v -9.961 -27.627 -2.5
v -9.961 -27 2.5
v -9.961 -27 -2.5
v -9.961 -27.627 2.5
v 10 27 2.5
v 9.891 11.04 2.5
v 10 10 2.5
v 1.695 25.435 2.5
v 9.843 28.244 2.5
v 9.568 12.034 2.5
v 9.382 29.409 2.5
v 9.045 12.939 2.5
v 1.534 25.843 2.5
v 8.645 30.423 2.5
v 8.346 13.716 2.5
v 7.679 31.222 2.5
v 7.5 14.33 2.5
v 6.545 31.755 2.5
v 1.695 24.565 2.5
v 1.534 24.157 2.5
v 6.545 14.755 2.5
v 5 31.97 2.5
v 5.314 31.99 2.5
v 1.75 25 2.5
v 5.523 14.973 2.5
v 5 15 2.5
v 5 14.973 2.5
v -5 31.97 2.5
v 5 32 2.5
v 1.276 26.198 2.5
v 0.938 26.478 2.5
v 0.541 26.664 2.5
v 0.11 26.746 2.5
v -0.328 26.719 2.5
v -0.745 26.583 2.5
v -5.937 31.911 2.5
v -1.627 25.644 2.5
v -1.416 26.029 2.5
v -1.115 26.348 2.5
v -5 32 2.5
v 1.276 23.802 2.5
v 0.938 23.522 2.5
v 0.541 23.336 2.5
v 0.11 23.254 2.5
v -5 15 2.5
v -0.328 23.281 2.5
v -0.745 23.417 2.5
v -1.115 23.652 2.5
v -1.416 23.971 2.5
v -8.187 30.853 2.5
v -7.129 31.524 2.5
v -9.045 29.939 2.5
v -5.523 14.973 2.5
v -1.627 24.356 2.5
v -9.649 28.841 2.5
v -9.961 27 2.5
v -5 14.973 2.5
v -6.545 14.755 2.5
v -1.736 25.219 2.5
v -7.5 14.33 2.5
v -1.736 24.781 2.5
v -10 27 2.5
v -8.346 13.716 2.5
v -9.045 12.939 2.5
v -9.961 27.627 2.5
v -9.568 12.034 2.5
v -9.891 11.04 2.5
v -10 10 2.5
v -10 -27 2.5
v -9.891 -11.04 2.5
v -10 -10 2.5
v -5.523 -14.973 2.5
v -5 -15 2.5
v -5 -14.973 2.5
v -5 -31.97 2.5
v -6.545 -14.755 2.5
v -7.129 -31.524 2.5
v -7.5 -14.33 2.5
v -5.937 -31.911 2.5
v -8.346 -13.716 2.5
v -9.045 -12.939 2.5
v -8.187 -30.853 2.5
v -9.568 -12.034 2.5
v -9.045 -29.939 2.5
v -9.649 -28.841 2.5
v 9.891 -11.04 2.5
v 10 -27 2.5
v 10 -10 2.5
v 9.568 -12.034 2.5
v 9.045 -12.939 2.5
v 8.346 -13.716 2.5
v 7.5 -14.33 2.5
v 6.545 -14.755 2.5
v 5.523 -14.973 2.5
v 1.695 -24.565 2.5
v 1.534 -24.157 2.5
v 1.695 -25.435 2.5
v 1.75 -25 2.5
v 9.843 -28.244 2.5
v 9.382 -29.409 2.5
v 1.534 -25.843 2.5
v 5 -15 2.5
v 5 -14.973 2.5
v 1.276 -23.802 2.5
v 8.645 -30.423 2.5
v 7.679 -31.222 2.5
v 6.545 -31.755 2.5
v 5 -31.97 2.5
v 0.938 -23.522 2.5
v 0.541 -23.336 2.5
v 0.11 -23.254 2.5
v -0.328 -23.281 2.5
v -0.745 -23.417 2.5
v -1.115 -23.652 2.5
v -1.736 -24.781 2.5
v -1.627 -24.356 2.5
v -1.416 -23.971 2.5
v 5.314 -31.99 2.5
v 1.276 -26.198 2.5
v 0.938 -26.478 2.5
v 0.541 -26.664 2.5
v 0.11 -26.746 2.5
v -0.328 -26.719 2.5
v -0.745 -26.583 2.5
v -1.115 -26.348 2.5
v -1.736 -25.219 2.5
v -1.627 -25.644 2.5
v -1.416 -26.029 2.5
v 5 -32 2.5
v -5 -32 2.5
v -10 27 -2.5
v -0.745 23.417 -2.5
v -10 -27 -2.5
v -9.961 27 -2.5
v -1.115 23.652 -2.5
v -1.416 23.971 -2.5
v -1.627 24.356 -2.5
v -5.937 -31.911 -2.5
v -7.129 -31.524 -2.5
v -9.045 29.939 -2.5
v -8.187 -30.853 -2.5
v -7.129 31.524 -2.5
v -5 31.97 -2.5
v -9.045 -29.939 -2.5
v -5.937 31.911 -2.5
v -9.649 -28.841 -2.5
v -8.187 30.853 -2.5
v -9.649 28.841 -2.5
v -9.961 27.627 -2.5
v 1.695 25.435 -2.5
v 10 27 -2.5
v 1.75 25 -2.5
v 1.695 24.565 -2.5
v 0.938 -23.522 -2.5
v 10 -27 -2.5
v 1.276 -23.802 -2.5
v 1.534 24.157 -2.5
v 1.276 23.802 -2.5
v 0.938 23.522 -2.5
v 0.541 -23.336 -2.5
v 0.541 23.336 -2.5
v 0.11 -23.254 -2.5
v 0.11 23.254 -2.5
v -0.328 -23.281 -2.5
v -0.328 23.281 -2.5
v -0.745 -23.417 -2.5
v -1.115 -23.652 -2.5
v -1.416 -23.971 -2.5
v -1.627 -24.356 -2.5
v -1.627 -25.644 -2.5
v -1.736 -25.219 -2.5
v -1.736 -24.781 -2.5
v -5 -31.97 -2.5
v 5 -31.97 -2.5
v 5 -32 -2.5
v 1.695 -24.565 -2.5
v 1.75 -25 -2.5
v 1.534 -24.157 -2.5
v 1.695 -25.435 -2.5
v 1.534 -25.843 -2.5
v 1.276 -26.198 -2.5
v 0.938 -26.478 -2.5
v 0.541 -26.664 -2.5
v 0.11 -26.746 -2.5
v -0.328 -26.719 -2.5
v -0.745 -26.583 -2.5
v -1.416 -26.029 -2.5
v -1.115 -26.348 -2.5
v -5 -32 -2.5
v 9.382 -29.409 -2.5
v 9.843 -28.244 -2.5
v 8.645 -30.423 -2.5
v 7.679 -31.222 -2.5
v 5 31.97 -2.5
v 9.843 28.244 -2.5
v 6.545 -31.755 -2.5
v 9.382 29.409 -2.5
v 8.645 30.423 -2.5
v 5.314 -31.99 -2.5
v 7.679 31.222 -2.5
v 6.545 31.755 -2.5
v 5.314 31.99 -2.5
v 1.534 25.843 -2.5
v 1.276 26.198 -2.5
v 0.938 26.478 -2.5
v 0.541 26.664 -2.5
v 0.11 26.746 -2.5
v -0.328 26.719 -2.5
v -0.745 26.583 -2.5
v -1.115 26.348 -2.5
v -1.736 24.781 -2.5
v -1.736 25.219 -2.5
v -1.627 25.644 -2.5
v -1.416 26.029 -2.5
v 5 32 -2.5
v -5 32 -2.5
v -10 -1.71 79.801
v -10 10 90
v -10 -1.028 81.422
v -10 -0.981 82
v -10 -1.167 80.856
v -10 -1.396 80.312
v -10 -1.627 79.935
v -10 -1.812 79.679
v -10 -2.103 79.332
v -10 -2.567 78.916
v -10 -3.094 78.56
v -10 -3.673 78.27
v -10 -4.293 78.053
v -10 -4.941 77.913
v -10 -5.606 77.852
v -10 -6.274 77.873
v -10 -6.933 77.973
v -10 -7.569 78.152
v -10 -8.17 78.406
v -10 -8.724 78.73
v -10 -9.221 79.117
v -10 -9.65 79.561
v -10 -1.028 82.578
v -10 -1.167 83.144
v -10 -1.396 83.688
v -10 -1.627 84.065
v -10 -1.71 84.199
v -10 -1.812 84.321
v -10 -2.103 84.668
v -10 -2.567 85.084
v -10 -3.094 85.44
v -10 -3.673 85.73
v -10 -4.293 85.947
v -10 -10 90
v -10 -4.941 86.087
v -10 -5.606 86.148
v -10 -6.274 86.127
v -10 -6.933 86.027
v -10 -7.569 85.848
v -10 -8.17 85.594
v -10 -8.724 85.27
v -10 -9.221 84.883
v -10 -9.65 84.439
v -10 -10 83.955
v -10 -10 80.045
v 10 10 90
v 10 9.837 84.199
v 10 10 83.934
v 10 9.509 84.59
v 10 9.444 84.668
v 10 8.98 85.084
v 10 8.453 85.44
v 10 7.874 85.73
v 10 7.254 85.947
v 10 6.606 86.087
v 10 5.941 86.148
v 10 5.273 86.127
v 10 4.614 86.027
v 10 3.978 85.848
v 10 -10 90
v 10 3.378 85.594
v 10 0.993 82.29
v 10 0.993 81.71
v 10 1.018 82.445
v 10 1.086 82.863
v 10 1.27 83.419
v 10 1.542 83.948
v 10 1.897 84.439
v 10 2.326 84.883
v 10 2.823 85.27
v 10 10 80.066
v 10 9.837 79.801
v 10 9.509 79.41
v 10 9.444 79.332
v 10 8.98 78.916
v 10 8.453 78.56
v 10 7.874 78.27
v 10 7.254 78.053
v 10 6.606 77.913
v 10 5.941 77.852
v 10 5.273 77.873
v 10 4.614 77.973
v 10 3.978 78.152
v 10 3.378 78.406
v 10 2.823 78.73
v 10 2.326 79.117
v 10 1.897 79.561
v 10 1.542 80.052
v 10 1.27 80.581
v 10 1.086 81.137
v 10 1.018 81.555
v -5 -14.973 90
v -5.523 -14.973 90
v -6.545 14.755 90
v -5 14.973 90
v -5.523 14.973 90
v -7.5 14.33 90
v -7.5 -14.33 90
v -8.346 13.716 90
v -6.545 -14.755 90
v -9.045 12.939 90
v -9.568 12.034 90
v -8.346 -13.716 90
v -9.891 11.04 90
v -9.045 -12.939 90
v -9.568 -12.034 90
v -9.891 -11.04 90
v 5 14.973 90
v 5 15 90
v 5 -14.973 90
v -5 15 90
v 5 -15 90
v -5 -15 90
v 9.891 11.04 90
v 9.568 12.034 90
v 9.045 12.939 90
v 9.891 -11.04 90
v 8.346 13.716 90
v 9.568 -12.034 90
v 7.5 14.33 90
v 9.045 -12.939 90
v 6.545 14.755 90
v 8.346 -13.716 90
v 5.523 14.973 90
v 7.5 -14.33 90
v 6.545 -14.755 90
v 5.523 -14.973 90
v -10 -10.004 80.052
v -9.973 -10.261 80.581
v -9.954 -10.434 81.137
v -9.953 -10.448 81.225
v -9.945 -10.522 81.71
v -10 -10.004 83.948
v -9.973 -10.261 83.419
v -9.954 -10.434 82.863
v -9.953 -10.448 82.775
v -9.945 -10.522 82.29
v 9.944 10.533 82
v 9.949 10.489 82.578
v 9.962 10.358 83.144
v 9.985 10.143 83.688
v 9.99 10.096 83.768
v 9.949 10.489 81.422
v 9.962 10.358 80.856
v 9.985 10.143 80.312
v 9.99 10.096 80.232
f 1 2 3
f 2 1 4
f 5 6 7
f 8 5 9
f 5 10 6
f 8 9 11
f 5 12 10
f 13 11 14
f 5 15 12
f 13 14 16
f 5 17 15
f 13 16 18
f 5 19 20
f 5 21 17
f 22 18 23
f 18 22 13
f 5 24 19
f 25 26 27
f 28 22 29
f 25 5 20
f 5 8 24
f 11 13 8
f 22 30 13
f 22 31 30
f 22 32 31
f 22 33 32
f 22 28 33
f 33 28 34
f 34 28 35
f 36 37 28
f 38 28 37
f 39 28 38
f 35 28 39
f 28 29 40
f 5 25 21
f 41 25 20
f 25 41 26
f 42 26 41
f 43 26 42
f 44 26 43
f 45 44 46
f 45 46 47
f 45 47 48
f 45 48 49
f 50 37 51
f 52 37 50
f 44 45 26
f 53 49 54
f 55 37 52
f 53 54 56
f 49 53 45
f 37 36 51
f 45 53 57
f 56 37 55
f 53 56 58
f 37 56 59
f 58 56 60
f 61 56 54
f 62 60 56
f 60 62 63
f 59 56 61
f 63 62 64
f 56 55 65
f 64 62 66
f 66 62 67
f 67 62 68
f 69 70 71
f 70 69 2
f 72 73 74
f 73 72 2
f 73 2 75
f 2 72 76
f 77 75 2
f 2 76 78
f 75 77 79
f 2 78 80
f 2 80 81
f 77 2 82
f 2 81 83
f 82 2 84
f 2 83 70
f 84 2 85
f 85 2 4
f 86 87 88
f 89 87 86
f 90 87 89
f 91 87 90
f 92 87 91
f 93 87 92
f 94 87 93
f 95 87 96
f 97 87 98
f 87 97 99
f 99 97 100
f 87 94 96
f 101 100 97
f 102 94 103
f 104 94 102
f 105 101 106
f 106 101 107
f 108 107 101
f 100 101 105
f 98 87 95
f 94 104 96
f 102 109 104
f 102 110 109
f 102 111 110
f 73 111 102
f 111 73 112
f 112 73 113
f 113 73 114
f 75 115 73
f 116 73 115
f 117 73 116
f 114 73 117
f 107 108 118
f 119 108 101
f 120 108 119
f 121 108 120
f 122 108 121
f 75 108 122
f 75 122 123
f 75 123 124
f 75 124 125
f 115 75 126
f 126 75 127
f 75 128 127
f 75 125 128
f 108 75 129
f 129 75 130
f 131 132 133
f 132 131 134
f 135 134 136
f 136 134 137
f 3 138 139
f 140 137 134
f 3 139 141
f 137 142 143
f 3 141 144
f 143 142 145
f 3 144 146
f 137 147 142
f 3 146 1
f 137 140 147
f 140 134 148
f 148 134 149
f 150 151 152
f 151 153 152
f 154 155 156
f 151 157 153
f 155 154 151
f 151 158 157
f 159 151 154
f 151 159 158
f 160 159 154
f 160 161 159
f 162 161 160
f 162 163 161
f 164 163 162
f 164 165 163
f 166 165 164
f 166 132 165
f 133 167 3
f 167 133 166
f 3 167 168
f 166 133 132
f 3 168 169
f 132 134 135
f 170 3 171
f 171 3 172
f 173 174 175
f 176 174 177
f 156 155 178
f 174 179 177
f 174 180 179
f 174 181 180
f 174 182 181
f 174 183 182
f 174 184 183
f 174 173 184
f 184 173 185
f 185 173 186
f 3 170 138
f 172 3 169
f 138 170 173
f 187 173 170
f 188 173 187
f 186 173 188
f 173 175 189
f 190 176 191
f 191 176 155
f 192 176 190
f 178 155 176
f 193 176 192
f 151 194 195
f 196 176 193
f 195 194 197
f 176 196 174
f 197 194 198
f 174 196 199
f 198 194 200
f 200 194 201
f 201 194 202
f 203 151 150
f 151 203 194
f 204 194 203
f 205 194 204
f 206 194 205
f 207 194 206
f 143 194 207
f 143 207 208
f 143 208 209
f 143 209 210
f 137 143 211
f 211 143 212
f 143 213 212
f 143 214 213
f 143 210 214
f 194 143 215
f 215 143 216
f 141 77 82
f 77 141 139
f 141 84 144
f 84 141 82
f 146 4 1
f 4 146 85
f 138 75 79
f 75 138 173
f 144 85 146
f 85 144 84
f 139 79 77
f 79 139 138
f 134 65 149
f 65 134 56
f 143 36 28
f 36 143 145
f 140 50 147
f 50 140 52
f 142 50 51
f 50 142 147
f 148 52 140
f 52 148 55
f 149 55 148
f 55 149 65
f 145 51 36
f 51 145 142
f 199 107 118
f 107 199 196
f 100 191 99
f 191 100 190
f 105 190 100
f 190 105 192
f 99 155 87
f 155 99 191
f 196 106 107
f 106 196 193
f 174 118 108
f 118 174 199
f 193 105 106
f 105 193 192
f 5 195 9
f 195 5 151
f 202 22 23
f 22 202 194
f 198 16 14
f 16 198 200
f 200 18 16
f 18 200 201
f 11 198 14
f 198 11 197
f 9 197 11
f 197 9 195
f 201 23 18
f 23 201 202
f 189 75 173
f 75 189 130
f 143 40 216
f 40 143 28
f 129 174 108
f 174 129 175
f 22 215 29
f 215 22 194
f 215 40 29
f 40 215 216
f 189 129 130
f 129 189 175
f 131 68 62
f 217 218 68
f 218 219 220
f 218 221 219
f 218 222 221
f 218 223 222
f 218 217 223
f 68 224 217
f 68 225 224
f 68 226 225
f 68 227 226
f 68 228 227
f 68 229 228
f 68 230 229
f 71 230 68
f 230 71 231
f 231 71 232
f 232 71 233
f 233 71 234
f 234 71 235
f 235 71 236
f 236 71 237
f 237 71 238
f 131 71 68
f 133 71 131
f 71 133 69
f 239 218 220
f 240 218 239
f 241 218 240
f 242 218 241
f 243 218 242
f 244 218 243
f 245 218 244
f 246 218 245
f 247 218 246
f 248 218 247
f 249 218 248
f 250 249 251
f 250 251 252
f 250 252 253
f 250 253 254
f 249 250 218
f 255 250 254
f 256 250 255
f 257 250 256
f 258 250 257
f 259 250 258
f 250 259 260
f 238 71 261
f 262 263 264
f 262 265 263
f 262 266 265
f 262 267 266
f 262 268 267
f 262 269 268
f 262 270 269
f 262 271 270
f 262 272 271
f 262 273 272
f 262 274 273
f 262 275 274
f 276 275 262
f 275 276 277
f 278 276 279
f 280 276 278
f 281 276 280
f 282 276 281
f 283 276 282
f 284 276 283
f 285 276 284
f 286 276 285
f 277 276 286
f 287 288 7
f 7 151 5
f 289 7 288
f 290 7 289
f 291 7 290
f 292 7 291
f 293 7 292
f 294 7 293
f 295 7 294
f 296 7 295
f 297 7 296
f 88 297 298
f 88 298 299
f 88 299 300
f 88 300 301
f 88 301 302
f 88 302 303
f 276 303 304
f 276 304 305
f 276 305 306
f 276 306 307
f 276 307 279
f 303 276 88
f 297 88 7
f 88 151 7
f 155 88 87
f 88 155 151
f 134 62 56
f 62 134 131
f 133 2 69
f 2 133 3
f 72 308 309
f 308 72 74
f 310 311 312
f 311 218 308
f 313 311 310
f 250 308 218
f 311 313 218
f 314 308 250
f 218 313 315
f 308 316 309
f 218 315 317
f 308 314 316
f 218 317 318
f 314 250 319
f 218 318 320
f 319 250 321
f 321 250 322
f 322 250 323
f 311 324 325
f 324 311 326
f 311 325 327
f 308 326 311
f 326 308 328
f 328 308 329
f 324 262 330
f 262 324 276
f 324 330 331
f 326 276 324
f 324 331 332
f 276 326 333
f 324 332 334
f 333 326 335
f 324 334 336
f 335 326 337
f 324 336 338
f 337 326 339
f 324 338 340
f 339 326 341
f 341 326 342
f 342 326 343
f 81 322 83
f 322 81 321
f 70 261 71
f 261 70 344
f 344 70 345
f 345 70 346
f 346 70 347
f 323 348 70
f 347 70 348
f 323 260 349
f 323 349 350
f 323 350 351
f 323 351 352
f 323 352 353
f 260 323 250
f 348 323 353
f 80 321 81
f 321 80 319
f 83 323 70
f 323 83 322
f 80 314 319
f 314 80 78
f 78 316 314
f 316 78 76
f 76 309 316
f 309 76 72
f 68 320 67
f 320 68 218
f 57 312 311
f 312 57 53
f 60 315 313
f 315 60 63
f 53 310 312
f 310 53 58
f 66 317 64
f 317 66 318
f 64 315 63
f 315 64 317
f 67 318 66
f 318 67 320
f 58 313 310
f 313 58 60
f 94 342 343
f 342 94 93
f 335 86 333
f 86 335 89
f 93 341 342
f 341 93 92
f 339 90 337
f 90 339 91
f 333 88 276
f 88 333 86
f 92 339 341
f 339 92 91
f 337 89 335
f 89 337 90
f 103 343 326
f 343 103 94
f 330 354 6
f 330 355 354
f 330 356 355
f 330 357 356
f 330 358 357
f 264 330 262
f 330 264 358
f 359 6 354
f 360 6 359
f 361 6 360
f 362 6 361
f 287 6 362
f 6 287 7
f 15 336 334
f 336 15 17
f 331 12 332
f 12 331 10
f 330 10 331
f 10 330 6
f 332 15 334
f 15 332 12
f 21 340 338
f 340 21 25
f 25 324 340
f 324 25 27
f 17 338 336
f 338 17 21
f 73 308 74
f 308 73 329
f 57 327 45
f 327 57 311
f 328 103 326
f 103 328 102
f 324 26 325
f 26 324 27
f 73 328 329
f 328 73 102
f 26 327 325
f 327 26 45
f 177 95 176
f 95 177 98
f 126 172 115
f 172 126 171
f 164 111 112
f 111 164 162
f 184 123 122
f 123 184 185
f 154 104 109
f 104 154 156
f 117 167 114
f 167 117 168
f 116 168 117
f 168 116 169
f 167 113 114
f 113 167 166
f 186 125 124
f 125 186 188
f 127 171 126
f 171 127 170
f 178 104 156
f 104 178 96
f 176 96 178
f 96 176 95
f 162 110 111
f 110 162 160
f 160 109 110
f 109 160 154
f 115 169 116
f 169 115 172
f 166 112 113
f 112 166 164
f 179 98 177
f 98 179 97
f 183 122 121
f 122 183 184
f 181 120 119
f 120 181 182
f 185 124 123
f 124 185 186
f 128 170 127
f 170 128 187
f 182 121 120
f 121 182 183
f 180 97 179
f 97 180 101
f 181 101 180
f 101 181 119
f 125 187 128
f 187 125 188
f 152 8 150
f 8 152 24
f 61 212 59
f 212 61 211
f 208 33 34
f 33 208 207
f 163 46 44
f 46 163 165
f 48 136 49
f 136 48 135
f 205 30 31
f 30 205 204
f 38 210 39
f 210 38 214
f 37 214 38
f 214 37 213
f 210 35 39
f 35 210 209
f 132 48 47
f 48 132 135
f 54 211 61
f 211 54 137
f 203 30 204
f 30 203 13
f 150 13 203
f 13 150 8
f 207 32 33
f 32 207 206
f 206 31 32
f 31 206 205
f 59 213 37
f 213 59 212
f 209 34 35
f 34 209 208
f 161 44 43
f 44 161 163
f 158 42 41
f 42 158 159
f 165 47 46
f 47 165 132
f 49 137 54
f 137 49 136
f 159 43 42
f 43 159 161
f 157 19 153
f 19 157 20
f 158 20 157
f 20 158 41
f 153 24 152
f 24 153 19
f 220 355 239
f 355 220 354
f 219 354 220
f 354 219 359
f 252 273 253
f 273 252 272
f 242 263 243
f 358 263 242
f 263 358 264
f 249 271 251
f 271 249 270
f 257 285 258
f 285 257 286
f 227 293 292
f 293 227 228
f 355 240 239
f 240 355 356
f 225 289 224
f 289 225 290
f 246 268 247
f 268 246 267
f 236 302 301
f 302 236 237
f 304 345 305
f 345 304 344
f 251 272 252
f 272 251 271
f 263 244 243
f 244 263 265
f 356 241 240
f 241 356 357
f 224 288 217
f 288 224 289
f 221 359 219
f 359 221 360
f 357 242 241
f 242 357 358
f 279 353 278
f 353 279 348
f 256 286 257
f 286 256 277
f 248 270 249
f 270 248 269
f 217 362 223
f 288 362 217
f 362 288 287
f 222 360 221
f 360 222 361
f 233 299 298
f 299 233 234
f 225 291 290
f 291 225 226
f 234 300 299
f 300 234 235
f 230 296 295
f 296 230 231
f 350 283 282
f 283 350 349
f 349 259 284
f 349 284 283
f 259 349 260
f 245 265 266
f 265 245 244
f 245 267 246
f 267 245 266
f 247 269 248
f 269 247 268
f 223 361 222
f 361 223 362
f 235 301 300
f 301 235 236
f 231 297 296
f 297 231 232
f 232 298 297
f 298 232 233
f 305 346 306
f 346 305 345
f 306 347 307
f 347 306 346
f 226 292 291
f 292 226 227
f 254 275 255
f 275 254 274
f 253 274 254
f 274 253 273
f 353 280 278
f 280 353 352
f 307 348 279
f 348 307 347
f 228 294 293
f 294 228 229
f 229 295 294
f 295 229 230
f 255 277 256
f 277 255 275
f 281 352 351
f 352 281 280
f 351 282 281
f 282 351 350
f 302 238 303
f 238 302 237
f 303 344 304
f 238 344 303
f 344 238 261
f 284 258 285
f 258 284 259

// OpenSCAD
// kossel 2020 spool holder

use <MCAD/boxes.scad>;

// setup to use M8 rod
rodDiam = 8.3;

mountWidth = 64;
mountThickness = 5;
mountScrewDiam = 3.5;
mountHoleSep = 50;

spoolMountHeight = 90;
spoolMountWidth = 30;
spoolMountDepth = 20;

module spoolHolder(){
	difference() {
		union(){
			roundedBox([spoolMountDepth, mountWidth, mountThickness], 5, true,$fn=25,center=true);
			translate([0, 0, spoolMountHeight/2]) roundedBox([spoolMountDepth, spoolMountWidth, spoolMountHeight],5,true,center=true,$fn=30);
		}
        
        offset = 8;
        translate([0, 0, spoolMountHeight-offset]) rotate([90,0,120]) union(){
            cylinder(d=rodDiam,h=spoolMountDepth*2,$fn=45,center=true);
        }
        for(i=[-1,1]){
            translate([0,mountHoleSep/2*i,0]) cylinder(d=mountScrewDiam,h=mountThickness+1,$fn=25,center=true);   
        }
	}
}
spoolHolder();
